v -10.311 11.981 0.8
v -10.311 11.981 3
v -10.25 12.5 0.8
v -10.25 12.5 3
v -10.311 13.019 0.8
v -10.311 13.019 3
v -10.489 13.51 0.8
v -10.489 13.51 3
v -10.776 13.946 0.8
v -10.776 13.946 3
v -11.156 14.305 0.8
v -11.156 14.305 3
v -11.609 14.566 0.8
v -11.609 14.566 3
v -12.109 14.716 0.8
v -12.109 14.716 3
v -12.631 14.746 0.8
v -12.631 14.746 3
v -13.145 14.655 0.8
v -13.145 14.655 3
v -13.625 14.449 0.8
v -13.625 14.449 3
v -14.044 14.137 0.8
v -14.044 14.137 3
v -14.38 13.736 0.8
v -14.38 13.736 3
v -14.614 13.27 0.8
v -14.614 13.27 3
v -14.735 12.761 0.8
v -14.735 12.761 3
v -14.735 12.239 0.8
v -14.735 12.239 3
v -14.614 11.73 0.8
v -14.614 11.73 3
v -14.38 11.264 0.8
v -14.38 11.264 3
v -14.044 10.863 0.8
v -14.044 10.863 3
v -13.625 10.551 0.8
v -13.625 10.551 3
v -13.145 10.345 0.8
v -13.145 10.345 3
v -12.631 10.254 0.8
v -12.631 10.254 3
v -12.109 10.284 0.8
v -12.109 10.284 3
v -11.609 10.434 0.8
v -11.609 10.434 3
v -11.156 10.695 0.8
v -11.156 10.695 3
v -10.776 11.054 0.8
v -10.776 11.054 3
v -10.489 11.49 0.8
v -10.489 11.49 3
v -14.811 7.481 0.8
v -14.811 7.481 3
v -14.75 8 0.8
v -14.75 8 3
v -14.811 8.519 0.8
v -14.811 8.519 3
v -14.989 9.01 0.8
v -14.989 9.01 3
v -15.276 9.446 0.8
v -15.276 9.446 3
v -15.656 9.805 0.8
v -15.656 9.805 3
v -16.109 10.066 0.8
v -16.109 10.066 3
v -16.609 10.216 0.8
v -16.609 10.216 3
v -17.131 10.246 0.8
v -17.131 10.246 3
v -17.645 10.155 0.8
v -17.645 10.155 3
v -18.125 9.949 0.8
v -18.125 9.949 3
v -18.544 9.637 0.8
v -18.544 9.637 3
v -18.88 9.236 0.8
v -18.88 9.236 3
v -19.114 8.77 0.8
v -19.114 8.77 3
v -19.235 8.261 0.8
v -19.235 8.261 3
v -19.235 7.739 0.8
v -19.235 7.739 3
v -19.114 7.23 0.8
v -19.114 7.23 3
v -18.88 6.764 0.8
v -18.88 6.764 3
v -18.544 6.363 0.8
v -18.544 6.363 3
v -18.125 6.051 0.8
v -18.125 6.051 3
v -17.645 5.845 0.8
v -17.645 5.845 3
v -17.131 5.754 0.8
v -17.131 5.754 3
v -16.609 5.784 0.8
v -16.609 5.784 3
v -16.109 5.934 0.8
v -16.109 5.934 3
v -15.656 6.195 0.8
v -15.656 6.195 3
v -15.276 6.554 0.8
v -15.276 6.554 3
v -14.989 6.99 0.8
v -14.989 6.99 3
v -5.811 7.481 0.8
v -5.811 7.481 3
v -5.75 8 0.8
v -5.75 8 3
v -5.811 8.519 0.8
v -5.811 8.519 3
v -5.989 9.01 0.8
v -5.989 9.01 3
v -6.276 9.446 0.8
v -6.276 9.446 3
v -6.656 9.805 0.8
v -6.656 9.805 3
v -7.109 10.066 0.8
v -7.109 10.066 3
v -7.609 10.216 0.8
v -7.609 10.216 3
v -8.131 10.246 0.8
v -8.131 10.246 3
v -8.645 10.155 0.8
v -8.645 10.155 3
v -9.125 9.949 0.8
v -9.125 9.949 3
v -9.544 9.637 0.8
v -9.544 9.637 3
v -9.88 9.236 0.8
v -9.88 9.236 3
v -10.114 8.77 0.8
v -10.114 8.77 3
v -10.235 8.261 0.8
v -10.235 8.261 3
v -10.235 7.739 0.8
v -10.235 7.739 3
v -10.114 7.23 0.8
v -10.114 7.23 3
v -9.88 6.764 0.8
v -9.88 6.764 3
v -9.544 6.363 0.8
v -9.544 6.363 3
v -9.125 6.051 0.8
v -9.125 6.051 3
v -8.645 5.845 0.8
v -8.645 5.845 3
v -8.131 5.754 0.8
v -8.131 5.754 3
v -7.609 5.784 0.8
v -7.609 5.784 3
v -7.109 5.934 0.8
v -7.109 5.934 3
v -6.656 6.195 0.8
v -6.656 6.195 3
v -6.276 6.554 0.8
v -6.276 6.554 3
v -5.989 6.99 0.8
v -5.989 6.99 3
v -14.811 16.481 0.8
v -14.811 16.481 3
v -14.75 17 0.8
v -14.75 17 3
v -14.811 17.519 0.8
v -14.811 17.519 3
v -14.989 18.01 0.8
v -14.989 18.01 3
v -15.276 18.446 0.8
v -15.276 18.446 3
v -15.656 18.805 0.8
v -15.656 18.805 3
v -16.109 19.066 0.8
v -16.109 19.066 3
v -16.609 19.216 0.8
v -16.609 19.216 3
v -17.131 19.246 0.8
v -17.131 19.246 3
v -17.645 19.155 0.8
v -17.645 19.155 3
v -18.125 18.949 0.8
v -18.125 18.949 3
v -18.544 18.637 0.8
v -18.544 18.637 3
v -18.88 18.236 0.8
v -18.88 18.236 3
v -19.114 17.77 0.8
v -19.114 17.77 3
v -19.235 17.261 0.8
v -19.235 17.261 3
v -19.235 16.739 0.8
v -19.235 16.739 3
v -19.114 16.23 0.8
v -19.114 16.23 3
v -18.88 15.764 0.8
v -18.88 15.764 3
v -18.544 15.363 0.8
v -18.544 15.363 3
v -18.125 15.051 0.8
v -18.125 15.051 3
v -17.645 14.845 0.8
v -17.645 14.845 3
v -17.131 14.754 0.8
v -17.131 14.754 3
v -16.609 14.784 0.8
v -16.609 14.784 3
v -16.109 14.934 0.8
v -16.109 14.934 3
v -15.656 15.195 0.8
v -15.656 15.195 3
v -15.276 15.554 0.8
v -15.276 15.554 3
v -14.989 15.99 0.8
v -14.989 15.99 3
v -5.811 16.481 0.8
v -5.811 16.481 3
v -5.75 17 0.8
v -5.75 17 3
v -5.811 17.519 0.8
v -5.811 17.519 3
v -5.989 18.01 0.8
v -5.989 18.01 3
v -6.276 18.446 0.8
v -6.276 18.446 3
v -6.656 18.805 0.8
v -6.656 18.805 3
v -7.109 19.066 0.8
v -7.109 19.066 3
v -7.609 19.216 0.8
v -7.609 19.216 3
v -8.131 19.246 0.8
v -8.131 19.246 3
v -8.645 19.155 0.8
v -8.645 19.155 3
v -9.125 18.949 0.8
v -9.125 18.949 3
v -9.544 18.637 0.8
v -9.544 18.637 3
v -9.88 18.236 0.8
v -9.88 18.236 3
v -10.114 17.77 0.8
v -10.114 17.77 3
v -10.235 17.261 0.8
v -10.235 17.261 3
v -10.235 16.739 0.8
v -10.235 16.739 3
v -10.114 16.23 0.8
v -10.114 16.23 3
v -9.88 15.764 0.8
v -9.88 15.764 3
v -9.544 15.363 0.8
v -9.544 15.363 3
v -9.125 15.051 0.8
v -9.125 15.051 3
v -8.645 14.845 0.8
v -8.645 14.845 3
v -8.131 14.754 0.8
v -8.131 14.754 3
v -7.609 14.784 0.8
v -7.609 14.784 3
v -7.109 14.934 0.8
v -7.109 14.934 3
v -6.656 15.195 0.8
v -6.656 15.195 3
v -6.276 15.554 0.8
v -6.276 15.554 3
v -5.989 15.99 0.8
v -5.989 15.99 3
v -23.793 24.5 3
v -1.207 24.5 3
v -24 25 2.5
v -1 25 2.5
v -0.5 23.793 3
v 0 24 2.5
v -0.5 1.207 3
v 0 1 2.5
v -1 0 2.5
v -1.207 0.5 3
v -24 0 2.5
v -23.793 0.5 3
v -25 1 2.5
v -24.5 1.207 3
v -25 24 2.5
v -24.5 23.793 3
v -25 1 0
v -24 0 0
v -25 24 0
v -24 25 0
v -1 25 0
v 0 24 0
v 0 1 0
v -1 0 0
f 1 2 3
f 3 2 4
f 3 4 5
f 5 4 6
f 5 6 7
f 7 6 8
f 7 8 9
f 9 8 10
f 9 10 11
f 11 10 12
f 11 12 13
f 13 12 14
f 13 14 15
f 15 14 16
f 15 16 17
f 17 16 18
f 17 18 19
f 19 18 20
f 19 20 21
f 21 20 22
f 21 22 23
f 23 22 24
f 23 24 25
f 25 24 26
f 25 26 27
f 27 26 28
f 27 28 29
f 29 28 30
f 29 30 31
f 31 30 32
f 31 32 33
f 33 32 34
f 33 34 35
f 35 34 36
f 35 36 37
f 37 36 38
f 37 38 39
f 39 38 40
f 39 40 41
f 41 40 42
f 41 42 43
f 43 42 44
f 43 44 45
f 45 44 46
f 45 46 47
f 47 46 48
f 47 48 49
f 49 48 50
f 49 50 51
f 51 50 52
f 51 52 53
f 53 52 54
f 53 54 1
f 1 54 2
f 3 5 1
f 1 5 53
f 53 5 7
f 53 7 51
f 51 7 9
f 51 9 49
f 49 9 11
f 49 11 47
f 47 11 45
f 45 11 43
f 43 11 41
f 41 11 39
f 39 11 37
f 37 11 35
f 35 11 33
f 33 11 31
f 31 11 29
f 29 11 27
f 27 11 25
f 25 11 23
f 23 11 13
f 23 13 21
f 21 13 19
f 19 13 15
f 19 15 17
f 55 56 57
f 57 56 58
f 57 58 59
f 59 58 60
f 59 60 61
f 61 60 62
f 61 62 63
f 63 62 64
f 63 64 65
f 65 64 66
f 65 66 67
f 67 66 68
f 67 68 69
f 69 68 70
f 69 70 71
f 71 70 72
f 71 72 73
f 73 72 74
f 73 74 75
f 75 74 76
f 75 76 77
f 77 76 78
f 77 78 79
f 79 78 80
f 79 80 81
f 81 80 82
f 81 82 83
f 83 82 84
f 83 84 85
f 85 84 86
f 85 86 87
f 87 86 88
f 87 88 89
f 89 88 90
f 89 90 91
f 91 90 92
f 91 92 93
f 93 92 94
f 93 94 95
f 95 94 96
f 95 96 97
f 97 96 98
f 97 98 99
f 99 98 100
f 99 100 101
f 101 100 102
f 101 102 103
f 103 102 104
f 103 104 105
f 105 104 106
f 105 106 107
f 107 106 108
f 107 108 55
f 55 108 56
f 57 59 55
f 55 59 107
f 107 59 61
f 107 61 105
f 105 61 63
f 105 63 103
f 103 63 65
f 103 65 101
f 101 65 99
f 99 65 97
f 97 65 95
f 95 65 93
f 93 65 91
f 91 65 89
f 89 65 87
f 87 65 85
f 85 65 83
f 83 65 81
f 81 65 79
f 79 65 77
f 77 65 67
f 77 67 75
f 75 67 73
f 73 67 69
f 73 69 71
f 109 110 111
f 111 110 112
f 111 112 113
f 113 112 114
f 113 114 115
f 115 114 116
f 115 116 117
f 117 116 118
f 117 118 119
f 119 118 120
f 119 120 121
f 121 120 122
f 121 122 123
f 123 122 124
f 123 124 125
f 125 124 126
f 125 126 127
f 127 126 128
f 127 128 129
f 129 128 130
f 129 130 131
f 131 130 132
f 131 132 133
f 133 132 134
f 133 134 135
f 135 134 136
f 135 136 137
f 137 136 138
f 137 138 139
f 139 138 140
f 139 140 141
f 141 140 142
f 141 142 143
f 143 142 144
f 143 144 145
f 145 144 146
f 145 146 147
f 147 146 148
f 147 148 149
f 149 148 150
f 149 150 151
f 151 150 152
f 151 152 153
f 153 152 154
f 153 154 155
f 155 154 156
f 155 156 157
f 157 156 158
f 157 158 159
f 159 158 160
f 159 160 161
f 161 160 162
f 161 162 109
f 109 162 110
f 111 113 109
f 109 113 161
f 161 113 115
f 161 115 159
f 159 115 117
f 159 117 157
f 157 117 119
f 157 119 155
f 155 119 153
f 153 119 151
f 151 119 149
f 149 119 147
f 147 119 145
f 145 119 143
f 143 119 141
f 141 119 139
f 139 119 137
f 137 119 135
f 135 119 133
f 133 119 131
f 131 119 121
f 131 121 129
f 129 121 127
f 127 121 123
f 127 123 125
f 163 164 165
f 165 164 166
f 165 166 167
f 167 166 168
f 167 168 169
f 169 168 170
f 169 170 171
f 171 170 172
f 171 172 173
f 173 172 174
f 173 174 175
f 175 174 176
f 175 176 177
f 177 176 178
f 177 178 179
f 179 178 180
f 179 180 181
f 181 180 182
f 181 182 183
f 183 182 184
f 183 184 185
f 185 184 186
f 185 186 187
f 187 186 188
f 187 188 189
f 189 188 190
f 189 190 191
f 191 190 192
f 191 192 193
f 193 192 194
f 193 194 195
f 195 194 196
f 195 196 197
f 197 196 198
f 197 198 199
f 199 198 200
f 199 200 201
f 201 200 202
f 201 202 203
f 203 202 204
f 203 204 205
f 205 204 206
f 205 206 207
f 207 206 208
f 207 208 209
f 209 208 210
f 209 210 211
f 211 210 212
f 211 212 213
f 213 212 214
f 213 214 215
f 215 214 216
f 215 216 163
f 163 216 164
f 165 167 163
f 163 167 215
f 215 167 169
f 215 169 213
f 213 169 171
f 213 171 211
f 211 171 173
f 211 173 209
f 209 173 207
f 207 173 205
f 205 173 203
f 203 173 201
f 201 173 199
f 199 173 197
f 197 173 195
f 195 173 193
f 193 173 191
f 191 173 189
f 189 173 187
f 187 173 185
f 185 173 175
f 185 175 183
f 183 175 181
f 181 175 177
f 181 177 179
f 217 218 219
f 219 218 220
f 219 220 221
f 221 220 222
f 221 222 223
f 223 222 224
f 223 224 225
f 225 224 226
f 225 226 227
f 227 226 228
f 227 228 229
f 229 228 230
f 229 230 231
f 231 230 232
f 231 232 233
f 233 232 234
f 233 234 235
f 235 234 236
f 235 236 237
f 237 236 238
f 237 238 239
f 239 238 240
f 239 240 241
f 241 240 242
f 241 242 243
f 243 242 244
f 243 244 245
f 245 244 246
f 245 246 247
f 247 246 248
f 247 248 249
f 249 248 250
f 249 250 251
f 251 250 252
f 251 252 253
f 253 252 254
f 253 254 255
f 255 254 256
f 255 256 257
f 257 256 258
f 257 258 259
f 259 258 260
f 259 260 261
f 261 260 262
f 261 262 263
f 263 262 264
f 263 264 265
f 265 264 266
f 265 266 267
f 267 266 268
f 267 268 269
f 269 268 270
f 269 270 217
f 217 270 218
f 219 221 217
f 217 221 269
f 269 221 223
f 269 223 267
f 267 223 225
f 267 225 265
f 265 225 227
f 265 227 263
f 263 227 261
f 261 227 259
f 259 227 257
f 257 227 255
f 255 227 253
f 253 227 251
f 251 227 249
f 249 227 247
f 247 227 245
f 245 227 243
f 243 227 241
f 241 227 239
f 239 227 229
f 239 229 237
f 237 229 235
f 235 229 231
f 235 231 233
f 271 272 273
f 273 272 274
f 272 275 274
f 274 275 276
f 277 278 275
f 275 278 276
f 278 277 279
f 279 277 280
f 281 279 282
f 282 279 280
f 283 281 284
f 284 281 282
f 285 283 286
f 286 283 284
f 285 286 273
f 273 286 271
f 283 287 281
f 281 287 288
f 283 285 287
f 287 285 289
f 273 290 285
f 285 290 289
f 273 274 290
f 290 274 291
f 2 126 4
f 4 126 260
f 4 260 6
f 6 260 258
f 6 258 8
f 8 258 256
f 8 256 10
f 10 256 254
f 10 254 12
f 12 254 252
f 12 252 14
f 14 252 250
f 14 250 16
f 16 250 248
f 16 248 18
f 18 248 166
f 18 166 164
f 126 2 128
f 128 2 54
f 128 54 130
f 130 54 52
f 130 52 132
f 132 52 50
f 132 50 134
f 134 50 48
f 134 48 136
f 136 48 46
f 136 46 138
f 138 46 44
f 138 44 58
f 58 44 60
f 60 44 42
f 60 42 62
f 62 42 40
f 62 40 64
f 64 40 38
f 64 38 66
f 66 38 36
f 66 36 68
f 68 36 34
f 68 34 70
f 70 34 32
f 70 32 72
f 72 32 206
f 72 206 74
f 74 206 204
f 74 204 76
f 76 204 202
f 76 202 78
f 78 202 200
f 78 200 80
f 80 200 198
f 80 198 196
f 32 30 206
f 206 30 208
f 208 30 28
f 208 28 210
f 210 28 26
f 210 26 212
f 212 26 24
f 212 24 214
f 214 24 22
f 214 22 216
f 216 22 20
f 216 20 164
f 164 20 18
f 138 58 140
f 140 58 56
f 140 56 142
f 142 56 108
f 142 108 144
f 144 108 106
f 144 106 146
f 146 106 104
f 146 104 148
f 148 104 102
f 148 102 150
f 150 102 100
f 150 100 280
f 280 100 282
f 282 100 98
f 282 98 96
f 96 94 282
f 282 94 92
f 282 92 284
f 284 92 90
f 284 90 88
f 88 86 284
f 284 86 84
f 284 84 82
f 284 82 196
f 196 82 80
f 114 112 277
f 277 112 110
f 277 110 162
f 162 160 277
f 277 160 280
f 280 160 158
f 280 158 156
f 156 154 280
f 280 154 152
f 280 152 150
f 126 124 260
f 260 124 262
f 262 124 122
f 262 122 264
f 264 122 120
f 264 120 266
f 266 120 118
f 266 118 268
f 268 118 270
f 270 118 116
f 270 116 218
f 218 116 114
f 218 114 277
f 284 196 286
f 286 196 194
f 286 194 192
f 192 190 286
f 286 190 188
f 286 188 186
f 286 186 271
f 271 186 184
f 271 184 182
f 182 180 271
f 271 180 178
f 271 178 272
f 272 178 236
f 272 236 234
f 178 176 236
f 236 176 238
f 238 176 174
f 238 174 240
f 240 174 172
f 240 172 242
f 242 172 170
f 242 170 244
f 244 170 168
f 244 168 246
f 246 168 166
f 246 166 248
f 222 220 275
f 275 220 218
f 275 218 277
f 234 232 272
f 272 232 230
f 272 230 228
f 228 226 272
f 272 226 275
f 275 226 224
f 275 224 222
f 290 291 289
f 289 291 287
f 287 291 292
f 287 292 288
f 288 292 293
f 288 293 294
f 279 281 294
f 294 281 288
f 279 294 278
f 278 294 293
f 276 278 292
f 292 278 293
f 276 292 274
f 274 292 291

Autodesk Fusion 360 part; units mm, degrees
sketch "Sketch1" plane through (0, 0, 0) normal (0, 0, 1) x (1, 0, 0)
  line L0 (-100, 100) -> (0, 100)
  line L1 (0, 100) -> (0, 0)
  line L2 (0, 0) -> (-100, 0)
  line L3 (-100, 0) -> (-100, 100)
extrude "Extrude1" add sketch "Sketch1" along normal blind 3 makes body 1
sketch "Sketch2" plane through (0, 0, 3) normal (0, 0, 1) x (-1, 0, 0)
  line L0 (100, 0) -> (0, 0)
  line L1 (0, 0) -> (0, -100)
  line L2 (0, -100) -> (100, -100)
  line L3 (100, -100) -> (100, 0)
  circle A0 centre (50, -50) radius 2.75
  dimension "d3" = 5.5
extrude "Extrude2" add sketch "Sketch2" along normal blind 1 contours L0 L1 L2 L3 | A0 bodies 1
sketch "Sketch3" plane through (0, 0, 4) normal (0, 0, 1) x (-1, 0, 0)
  line L0 (100, -100) -> (100, 0)
  line L1 (100, 0) -> (0, 0)
  line L2 (0, 0) -> (0, -100)
  line L3 (0, -100) -> (100, -100)
  circle A0 centre (50, -50) radius 2.75
  dimension "d6" = 5.5
extrude "Extrude3" cut sketch "Sketch3" against normal blind 3.25 contours A0 bodies 1
chamfer "Chamfer1" distance 0.5 angle 45 1 edges at (-47.4361, 49.0056, 4) on bodies 1
sketch "Sketch4" plane through (0, 0, 0) normal (0, 0, 1) x (1, 0, 0)
  line L0 (0, 0) -> (-25, 0)
  line L1 (-25, 0) -> (-25, 25)
  line L2 (-25, 25) -> (0, 25)
  line L3 (0, 25) -> (0, 0)
extrude "Extrude4" add sketch "Sketch4" along normal blind 3 separate body makes body 2
extrude "Extrude5" add 1 faces at (-8.3333, 8.3333, 3) along direction (0, 0, 1) blind 1 on bodies 2 bodies 2
sketch "Sketch5" plane through (0, 0, 4) normal (0, 0, 1) x (-1, 0, 0)
  line L0 (0, -25) -> (25, -25)
  line L1 (25, -25) -> (25, 0)
  line L2 (25, 0) -> (0, 0)
  line L3 (0, 0) -> (0, -25)
  circle A0 centre (12.5, -12.5) radius 2.75
  dimension "d14" = 5.5
extrude "Extrude6" cut sketch "Sketch5" against normal blind 3.25 contours A0 bodies 2
chamfer "Chamfer2" distance 0.5 angle 45 1 edges at (-9.9361, 11.5056, 4) on bodies 2
chamfer "Chamfer3" distance 0.5 angle 45 4 edges at (-12.5, 0, 4) (-25, 12.5, 4) (0, 12.5, 4) (-12.5, 25, 4) on bodies 2
sketch "Sketch6" plane through (0, 0, 4) normal (0, 0, 1) x (-1, 0, 0)
  circle A0 centre (12.5, -12.5) radius 3.25
  line L0 (0.5, -24.5) -> (24.5, -24.5)
  line L1 (24.5, -24.5) -> (24.5, -0.5)
  line L2 (24.5, -0.5) -> (0.5, -0.5)
  line L3 (0.5, -0.5) -> (0.5, -24.5)
  circle A1 centre (5, -5) radius 2.75
  circle A2 centre (20, -5) radius 2.75
  circle A3 centre (5, -20) radius 2.75
  circle A4 centre (20, -20) radius 2.75
  dimension "d19" = 5.5
  dimension "d20" = 5.5
  dimension "d21" = 5.5
  dimension "d22" = 5.5
extrude "Extrude7" cut sketch "Sketch6" against normal blind 3.25 contours A1 | A2 | A3 | A4 bodies 2
chamfer "Chamfer4" distance 0.5 angle 45 4 edges at (-2.4361, 4.0056, 4) (-17.4361, 4.0056, 4) (-17.4361, 19.0056, 4) (-2.4361, 19.0056, 4) on bodies 2
sketch "Sketch7" plane through (0, 0, 0) normal (0, 0, 1) x (1, 0, 0)
  line L0 (-25, 25) -> (0, 25)
  line L1 (0, 25) -> (0, 0)
  line L2 (0, 0) -> (-25, 0)
  line L3 (-25, 0) -> (-25, 25)
extrude "Extrude8" add sketch "Sketch7" along normal blind 3 separate body makes body 3
chamfer "Chamfer5" distance 1 angle 45 4 edges at (0, 25, 1.5) (0, 0, 1.5) (-25, 0, 1.5) (-25, 25, 1.5) on bodies 3
chamfer "Chamfer6" distance 0.5 angle 45 8 edges at (-0.5, 0.5, 3) (-12.5, 0, 3) (-24.5, 0.5, 3) (-25, 12.5, 3) (0, 12.5, 3) (-0.5, 24.5, 3) (-12.5, 25, 3) (-24.5, 24.5, 3) on bodies 3
sketch "Sketch8" plane through (0, 0, 3) normal (0, 0, 1) x (-1, 0, 0)
  line L0 (1.2071, -24.5) -> (23.7929, -24.5)
  line L1 (23.7929, -24.5) -> (24.5, -23.7929)
  line L2 (24.5, -23.7929) -> (24.5, -1.2071)
  line L3 (24.5, -1.2071) -> (23.7929, -0.5)
  line L4 (23.7929, -0.5) -> (1.2071, -0.5)
  line L5 (1.2071, -0.5) -> (0.5, -1.2071)
  line L6 (0.5, -1.2071) -> (0.5, -23.7929)
  line L7 (0.5, -23.7929) -> (1.2071, -24.5)
  circle A0 centre (12.5, -12.5) radius 2.25
  circle A1 centre (17, -17) radius 2.25
  circle A2 centre (8, -17) radius 2.25
  circle A3 centre (17, -8) radius 2.25
  circle A4 centre (8, -8) radius 2.25
  dimension "d30" = 4.5
  dimension "d31" = 4.5
  dimension "d32" = 4.5
  dimension "d33" = 4.5
  dimension "d34" = 4.5
extrude "Extrude9" cut sketch "Sketch8" against normal blind 2.2 contours A0 | A1 | A2 | A3 | A4 bodies 3
hidden bodies 1 2
